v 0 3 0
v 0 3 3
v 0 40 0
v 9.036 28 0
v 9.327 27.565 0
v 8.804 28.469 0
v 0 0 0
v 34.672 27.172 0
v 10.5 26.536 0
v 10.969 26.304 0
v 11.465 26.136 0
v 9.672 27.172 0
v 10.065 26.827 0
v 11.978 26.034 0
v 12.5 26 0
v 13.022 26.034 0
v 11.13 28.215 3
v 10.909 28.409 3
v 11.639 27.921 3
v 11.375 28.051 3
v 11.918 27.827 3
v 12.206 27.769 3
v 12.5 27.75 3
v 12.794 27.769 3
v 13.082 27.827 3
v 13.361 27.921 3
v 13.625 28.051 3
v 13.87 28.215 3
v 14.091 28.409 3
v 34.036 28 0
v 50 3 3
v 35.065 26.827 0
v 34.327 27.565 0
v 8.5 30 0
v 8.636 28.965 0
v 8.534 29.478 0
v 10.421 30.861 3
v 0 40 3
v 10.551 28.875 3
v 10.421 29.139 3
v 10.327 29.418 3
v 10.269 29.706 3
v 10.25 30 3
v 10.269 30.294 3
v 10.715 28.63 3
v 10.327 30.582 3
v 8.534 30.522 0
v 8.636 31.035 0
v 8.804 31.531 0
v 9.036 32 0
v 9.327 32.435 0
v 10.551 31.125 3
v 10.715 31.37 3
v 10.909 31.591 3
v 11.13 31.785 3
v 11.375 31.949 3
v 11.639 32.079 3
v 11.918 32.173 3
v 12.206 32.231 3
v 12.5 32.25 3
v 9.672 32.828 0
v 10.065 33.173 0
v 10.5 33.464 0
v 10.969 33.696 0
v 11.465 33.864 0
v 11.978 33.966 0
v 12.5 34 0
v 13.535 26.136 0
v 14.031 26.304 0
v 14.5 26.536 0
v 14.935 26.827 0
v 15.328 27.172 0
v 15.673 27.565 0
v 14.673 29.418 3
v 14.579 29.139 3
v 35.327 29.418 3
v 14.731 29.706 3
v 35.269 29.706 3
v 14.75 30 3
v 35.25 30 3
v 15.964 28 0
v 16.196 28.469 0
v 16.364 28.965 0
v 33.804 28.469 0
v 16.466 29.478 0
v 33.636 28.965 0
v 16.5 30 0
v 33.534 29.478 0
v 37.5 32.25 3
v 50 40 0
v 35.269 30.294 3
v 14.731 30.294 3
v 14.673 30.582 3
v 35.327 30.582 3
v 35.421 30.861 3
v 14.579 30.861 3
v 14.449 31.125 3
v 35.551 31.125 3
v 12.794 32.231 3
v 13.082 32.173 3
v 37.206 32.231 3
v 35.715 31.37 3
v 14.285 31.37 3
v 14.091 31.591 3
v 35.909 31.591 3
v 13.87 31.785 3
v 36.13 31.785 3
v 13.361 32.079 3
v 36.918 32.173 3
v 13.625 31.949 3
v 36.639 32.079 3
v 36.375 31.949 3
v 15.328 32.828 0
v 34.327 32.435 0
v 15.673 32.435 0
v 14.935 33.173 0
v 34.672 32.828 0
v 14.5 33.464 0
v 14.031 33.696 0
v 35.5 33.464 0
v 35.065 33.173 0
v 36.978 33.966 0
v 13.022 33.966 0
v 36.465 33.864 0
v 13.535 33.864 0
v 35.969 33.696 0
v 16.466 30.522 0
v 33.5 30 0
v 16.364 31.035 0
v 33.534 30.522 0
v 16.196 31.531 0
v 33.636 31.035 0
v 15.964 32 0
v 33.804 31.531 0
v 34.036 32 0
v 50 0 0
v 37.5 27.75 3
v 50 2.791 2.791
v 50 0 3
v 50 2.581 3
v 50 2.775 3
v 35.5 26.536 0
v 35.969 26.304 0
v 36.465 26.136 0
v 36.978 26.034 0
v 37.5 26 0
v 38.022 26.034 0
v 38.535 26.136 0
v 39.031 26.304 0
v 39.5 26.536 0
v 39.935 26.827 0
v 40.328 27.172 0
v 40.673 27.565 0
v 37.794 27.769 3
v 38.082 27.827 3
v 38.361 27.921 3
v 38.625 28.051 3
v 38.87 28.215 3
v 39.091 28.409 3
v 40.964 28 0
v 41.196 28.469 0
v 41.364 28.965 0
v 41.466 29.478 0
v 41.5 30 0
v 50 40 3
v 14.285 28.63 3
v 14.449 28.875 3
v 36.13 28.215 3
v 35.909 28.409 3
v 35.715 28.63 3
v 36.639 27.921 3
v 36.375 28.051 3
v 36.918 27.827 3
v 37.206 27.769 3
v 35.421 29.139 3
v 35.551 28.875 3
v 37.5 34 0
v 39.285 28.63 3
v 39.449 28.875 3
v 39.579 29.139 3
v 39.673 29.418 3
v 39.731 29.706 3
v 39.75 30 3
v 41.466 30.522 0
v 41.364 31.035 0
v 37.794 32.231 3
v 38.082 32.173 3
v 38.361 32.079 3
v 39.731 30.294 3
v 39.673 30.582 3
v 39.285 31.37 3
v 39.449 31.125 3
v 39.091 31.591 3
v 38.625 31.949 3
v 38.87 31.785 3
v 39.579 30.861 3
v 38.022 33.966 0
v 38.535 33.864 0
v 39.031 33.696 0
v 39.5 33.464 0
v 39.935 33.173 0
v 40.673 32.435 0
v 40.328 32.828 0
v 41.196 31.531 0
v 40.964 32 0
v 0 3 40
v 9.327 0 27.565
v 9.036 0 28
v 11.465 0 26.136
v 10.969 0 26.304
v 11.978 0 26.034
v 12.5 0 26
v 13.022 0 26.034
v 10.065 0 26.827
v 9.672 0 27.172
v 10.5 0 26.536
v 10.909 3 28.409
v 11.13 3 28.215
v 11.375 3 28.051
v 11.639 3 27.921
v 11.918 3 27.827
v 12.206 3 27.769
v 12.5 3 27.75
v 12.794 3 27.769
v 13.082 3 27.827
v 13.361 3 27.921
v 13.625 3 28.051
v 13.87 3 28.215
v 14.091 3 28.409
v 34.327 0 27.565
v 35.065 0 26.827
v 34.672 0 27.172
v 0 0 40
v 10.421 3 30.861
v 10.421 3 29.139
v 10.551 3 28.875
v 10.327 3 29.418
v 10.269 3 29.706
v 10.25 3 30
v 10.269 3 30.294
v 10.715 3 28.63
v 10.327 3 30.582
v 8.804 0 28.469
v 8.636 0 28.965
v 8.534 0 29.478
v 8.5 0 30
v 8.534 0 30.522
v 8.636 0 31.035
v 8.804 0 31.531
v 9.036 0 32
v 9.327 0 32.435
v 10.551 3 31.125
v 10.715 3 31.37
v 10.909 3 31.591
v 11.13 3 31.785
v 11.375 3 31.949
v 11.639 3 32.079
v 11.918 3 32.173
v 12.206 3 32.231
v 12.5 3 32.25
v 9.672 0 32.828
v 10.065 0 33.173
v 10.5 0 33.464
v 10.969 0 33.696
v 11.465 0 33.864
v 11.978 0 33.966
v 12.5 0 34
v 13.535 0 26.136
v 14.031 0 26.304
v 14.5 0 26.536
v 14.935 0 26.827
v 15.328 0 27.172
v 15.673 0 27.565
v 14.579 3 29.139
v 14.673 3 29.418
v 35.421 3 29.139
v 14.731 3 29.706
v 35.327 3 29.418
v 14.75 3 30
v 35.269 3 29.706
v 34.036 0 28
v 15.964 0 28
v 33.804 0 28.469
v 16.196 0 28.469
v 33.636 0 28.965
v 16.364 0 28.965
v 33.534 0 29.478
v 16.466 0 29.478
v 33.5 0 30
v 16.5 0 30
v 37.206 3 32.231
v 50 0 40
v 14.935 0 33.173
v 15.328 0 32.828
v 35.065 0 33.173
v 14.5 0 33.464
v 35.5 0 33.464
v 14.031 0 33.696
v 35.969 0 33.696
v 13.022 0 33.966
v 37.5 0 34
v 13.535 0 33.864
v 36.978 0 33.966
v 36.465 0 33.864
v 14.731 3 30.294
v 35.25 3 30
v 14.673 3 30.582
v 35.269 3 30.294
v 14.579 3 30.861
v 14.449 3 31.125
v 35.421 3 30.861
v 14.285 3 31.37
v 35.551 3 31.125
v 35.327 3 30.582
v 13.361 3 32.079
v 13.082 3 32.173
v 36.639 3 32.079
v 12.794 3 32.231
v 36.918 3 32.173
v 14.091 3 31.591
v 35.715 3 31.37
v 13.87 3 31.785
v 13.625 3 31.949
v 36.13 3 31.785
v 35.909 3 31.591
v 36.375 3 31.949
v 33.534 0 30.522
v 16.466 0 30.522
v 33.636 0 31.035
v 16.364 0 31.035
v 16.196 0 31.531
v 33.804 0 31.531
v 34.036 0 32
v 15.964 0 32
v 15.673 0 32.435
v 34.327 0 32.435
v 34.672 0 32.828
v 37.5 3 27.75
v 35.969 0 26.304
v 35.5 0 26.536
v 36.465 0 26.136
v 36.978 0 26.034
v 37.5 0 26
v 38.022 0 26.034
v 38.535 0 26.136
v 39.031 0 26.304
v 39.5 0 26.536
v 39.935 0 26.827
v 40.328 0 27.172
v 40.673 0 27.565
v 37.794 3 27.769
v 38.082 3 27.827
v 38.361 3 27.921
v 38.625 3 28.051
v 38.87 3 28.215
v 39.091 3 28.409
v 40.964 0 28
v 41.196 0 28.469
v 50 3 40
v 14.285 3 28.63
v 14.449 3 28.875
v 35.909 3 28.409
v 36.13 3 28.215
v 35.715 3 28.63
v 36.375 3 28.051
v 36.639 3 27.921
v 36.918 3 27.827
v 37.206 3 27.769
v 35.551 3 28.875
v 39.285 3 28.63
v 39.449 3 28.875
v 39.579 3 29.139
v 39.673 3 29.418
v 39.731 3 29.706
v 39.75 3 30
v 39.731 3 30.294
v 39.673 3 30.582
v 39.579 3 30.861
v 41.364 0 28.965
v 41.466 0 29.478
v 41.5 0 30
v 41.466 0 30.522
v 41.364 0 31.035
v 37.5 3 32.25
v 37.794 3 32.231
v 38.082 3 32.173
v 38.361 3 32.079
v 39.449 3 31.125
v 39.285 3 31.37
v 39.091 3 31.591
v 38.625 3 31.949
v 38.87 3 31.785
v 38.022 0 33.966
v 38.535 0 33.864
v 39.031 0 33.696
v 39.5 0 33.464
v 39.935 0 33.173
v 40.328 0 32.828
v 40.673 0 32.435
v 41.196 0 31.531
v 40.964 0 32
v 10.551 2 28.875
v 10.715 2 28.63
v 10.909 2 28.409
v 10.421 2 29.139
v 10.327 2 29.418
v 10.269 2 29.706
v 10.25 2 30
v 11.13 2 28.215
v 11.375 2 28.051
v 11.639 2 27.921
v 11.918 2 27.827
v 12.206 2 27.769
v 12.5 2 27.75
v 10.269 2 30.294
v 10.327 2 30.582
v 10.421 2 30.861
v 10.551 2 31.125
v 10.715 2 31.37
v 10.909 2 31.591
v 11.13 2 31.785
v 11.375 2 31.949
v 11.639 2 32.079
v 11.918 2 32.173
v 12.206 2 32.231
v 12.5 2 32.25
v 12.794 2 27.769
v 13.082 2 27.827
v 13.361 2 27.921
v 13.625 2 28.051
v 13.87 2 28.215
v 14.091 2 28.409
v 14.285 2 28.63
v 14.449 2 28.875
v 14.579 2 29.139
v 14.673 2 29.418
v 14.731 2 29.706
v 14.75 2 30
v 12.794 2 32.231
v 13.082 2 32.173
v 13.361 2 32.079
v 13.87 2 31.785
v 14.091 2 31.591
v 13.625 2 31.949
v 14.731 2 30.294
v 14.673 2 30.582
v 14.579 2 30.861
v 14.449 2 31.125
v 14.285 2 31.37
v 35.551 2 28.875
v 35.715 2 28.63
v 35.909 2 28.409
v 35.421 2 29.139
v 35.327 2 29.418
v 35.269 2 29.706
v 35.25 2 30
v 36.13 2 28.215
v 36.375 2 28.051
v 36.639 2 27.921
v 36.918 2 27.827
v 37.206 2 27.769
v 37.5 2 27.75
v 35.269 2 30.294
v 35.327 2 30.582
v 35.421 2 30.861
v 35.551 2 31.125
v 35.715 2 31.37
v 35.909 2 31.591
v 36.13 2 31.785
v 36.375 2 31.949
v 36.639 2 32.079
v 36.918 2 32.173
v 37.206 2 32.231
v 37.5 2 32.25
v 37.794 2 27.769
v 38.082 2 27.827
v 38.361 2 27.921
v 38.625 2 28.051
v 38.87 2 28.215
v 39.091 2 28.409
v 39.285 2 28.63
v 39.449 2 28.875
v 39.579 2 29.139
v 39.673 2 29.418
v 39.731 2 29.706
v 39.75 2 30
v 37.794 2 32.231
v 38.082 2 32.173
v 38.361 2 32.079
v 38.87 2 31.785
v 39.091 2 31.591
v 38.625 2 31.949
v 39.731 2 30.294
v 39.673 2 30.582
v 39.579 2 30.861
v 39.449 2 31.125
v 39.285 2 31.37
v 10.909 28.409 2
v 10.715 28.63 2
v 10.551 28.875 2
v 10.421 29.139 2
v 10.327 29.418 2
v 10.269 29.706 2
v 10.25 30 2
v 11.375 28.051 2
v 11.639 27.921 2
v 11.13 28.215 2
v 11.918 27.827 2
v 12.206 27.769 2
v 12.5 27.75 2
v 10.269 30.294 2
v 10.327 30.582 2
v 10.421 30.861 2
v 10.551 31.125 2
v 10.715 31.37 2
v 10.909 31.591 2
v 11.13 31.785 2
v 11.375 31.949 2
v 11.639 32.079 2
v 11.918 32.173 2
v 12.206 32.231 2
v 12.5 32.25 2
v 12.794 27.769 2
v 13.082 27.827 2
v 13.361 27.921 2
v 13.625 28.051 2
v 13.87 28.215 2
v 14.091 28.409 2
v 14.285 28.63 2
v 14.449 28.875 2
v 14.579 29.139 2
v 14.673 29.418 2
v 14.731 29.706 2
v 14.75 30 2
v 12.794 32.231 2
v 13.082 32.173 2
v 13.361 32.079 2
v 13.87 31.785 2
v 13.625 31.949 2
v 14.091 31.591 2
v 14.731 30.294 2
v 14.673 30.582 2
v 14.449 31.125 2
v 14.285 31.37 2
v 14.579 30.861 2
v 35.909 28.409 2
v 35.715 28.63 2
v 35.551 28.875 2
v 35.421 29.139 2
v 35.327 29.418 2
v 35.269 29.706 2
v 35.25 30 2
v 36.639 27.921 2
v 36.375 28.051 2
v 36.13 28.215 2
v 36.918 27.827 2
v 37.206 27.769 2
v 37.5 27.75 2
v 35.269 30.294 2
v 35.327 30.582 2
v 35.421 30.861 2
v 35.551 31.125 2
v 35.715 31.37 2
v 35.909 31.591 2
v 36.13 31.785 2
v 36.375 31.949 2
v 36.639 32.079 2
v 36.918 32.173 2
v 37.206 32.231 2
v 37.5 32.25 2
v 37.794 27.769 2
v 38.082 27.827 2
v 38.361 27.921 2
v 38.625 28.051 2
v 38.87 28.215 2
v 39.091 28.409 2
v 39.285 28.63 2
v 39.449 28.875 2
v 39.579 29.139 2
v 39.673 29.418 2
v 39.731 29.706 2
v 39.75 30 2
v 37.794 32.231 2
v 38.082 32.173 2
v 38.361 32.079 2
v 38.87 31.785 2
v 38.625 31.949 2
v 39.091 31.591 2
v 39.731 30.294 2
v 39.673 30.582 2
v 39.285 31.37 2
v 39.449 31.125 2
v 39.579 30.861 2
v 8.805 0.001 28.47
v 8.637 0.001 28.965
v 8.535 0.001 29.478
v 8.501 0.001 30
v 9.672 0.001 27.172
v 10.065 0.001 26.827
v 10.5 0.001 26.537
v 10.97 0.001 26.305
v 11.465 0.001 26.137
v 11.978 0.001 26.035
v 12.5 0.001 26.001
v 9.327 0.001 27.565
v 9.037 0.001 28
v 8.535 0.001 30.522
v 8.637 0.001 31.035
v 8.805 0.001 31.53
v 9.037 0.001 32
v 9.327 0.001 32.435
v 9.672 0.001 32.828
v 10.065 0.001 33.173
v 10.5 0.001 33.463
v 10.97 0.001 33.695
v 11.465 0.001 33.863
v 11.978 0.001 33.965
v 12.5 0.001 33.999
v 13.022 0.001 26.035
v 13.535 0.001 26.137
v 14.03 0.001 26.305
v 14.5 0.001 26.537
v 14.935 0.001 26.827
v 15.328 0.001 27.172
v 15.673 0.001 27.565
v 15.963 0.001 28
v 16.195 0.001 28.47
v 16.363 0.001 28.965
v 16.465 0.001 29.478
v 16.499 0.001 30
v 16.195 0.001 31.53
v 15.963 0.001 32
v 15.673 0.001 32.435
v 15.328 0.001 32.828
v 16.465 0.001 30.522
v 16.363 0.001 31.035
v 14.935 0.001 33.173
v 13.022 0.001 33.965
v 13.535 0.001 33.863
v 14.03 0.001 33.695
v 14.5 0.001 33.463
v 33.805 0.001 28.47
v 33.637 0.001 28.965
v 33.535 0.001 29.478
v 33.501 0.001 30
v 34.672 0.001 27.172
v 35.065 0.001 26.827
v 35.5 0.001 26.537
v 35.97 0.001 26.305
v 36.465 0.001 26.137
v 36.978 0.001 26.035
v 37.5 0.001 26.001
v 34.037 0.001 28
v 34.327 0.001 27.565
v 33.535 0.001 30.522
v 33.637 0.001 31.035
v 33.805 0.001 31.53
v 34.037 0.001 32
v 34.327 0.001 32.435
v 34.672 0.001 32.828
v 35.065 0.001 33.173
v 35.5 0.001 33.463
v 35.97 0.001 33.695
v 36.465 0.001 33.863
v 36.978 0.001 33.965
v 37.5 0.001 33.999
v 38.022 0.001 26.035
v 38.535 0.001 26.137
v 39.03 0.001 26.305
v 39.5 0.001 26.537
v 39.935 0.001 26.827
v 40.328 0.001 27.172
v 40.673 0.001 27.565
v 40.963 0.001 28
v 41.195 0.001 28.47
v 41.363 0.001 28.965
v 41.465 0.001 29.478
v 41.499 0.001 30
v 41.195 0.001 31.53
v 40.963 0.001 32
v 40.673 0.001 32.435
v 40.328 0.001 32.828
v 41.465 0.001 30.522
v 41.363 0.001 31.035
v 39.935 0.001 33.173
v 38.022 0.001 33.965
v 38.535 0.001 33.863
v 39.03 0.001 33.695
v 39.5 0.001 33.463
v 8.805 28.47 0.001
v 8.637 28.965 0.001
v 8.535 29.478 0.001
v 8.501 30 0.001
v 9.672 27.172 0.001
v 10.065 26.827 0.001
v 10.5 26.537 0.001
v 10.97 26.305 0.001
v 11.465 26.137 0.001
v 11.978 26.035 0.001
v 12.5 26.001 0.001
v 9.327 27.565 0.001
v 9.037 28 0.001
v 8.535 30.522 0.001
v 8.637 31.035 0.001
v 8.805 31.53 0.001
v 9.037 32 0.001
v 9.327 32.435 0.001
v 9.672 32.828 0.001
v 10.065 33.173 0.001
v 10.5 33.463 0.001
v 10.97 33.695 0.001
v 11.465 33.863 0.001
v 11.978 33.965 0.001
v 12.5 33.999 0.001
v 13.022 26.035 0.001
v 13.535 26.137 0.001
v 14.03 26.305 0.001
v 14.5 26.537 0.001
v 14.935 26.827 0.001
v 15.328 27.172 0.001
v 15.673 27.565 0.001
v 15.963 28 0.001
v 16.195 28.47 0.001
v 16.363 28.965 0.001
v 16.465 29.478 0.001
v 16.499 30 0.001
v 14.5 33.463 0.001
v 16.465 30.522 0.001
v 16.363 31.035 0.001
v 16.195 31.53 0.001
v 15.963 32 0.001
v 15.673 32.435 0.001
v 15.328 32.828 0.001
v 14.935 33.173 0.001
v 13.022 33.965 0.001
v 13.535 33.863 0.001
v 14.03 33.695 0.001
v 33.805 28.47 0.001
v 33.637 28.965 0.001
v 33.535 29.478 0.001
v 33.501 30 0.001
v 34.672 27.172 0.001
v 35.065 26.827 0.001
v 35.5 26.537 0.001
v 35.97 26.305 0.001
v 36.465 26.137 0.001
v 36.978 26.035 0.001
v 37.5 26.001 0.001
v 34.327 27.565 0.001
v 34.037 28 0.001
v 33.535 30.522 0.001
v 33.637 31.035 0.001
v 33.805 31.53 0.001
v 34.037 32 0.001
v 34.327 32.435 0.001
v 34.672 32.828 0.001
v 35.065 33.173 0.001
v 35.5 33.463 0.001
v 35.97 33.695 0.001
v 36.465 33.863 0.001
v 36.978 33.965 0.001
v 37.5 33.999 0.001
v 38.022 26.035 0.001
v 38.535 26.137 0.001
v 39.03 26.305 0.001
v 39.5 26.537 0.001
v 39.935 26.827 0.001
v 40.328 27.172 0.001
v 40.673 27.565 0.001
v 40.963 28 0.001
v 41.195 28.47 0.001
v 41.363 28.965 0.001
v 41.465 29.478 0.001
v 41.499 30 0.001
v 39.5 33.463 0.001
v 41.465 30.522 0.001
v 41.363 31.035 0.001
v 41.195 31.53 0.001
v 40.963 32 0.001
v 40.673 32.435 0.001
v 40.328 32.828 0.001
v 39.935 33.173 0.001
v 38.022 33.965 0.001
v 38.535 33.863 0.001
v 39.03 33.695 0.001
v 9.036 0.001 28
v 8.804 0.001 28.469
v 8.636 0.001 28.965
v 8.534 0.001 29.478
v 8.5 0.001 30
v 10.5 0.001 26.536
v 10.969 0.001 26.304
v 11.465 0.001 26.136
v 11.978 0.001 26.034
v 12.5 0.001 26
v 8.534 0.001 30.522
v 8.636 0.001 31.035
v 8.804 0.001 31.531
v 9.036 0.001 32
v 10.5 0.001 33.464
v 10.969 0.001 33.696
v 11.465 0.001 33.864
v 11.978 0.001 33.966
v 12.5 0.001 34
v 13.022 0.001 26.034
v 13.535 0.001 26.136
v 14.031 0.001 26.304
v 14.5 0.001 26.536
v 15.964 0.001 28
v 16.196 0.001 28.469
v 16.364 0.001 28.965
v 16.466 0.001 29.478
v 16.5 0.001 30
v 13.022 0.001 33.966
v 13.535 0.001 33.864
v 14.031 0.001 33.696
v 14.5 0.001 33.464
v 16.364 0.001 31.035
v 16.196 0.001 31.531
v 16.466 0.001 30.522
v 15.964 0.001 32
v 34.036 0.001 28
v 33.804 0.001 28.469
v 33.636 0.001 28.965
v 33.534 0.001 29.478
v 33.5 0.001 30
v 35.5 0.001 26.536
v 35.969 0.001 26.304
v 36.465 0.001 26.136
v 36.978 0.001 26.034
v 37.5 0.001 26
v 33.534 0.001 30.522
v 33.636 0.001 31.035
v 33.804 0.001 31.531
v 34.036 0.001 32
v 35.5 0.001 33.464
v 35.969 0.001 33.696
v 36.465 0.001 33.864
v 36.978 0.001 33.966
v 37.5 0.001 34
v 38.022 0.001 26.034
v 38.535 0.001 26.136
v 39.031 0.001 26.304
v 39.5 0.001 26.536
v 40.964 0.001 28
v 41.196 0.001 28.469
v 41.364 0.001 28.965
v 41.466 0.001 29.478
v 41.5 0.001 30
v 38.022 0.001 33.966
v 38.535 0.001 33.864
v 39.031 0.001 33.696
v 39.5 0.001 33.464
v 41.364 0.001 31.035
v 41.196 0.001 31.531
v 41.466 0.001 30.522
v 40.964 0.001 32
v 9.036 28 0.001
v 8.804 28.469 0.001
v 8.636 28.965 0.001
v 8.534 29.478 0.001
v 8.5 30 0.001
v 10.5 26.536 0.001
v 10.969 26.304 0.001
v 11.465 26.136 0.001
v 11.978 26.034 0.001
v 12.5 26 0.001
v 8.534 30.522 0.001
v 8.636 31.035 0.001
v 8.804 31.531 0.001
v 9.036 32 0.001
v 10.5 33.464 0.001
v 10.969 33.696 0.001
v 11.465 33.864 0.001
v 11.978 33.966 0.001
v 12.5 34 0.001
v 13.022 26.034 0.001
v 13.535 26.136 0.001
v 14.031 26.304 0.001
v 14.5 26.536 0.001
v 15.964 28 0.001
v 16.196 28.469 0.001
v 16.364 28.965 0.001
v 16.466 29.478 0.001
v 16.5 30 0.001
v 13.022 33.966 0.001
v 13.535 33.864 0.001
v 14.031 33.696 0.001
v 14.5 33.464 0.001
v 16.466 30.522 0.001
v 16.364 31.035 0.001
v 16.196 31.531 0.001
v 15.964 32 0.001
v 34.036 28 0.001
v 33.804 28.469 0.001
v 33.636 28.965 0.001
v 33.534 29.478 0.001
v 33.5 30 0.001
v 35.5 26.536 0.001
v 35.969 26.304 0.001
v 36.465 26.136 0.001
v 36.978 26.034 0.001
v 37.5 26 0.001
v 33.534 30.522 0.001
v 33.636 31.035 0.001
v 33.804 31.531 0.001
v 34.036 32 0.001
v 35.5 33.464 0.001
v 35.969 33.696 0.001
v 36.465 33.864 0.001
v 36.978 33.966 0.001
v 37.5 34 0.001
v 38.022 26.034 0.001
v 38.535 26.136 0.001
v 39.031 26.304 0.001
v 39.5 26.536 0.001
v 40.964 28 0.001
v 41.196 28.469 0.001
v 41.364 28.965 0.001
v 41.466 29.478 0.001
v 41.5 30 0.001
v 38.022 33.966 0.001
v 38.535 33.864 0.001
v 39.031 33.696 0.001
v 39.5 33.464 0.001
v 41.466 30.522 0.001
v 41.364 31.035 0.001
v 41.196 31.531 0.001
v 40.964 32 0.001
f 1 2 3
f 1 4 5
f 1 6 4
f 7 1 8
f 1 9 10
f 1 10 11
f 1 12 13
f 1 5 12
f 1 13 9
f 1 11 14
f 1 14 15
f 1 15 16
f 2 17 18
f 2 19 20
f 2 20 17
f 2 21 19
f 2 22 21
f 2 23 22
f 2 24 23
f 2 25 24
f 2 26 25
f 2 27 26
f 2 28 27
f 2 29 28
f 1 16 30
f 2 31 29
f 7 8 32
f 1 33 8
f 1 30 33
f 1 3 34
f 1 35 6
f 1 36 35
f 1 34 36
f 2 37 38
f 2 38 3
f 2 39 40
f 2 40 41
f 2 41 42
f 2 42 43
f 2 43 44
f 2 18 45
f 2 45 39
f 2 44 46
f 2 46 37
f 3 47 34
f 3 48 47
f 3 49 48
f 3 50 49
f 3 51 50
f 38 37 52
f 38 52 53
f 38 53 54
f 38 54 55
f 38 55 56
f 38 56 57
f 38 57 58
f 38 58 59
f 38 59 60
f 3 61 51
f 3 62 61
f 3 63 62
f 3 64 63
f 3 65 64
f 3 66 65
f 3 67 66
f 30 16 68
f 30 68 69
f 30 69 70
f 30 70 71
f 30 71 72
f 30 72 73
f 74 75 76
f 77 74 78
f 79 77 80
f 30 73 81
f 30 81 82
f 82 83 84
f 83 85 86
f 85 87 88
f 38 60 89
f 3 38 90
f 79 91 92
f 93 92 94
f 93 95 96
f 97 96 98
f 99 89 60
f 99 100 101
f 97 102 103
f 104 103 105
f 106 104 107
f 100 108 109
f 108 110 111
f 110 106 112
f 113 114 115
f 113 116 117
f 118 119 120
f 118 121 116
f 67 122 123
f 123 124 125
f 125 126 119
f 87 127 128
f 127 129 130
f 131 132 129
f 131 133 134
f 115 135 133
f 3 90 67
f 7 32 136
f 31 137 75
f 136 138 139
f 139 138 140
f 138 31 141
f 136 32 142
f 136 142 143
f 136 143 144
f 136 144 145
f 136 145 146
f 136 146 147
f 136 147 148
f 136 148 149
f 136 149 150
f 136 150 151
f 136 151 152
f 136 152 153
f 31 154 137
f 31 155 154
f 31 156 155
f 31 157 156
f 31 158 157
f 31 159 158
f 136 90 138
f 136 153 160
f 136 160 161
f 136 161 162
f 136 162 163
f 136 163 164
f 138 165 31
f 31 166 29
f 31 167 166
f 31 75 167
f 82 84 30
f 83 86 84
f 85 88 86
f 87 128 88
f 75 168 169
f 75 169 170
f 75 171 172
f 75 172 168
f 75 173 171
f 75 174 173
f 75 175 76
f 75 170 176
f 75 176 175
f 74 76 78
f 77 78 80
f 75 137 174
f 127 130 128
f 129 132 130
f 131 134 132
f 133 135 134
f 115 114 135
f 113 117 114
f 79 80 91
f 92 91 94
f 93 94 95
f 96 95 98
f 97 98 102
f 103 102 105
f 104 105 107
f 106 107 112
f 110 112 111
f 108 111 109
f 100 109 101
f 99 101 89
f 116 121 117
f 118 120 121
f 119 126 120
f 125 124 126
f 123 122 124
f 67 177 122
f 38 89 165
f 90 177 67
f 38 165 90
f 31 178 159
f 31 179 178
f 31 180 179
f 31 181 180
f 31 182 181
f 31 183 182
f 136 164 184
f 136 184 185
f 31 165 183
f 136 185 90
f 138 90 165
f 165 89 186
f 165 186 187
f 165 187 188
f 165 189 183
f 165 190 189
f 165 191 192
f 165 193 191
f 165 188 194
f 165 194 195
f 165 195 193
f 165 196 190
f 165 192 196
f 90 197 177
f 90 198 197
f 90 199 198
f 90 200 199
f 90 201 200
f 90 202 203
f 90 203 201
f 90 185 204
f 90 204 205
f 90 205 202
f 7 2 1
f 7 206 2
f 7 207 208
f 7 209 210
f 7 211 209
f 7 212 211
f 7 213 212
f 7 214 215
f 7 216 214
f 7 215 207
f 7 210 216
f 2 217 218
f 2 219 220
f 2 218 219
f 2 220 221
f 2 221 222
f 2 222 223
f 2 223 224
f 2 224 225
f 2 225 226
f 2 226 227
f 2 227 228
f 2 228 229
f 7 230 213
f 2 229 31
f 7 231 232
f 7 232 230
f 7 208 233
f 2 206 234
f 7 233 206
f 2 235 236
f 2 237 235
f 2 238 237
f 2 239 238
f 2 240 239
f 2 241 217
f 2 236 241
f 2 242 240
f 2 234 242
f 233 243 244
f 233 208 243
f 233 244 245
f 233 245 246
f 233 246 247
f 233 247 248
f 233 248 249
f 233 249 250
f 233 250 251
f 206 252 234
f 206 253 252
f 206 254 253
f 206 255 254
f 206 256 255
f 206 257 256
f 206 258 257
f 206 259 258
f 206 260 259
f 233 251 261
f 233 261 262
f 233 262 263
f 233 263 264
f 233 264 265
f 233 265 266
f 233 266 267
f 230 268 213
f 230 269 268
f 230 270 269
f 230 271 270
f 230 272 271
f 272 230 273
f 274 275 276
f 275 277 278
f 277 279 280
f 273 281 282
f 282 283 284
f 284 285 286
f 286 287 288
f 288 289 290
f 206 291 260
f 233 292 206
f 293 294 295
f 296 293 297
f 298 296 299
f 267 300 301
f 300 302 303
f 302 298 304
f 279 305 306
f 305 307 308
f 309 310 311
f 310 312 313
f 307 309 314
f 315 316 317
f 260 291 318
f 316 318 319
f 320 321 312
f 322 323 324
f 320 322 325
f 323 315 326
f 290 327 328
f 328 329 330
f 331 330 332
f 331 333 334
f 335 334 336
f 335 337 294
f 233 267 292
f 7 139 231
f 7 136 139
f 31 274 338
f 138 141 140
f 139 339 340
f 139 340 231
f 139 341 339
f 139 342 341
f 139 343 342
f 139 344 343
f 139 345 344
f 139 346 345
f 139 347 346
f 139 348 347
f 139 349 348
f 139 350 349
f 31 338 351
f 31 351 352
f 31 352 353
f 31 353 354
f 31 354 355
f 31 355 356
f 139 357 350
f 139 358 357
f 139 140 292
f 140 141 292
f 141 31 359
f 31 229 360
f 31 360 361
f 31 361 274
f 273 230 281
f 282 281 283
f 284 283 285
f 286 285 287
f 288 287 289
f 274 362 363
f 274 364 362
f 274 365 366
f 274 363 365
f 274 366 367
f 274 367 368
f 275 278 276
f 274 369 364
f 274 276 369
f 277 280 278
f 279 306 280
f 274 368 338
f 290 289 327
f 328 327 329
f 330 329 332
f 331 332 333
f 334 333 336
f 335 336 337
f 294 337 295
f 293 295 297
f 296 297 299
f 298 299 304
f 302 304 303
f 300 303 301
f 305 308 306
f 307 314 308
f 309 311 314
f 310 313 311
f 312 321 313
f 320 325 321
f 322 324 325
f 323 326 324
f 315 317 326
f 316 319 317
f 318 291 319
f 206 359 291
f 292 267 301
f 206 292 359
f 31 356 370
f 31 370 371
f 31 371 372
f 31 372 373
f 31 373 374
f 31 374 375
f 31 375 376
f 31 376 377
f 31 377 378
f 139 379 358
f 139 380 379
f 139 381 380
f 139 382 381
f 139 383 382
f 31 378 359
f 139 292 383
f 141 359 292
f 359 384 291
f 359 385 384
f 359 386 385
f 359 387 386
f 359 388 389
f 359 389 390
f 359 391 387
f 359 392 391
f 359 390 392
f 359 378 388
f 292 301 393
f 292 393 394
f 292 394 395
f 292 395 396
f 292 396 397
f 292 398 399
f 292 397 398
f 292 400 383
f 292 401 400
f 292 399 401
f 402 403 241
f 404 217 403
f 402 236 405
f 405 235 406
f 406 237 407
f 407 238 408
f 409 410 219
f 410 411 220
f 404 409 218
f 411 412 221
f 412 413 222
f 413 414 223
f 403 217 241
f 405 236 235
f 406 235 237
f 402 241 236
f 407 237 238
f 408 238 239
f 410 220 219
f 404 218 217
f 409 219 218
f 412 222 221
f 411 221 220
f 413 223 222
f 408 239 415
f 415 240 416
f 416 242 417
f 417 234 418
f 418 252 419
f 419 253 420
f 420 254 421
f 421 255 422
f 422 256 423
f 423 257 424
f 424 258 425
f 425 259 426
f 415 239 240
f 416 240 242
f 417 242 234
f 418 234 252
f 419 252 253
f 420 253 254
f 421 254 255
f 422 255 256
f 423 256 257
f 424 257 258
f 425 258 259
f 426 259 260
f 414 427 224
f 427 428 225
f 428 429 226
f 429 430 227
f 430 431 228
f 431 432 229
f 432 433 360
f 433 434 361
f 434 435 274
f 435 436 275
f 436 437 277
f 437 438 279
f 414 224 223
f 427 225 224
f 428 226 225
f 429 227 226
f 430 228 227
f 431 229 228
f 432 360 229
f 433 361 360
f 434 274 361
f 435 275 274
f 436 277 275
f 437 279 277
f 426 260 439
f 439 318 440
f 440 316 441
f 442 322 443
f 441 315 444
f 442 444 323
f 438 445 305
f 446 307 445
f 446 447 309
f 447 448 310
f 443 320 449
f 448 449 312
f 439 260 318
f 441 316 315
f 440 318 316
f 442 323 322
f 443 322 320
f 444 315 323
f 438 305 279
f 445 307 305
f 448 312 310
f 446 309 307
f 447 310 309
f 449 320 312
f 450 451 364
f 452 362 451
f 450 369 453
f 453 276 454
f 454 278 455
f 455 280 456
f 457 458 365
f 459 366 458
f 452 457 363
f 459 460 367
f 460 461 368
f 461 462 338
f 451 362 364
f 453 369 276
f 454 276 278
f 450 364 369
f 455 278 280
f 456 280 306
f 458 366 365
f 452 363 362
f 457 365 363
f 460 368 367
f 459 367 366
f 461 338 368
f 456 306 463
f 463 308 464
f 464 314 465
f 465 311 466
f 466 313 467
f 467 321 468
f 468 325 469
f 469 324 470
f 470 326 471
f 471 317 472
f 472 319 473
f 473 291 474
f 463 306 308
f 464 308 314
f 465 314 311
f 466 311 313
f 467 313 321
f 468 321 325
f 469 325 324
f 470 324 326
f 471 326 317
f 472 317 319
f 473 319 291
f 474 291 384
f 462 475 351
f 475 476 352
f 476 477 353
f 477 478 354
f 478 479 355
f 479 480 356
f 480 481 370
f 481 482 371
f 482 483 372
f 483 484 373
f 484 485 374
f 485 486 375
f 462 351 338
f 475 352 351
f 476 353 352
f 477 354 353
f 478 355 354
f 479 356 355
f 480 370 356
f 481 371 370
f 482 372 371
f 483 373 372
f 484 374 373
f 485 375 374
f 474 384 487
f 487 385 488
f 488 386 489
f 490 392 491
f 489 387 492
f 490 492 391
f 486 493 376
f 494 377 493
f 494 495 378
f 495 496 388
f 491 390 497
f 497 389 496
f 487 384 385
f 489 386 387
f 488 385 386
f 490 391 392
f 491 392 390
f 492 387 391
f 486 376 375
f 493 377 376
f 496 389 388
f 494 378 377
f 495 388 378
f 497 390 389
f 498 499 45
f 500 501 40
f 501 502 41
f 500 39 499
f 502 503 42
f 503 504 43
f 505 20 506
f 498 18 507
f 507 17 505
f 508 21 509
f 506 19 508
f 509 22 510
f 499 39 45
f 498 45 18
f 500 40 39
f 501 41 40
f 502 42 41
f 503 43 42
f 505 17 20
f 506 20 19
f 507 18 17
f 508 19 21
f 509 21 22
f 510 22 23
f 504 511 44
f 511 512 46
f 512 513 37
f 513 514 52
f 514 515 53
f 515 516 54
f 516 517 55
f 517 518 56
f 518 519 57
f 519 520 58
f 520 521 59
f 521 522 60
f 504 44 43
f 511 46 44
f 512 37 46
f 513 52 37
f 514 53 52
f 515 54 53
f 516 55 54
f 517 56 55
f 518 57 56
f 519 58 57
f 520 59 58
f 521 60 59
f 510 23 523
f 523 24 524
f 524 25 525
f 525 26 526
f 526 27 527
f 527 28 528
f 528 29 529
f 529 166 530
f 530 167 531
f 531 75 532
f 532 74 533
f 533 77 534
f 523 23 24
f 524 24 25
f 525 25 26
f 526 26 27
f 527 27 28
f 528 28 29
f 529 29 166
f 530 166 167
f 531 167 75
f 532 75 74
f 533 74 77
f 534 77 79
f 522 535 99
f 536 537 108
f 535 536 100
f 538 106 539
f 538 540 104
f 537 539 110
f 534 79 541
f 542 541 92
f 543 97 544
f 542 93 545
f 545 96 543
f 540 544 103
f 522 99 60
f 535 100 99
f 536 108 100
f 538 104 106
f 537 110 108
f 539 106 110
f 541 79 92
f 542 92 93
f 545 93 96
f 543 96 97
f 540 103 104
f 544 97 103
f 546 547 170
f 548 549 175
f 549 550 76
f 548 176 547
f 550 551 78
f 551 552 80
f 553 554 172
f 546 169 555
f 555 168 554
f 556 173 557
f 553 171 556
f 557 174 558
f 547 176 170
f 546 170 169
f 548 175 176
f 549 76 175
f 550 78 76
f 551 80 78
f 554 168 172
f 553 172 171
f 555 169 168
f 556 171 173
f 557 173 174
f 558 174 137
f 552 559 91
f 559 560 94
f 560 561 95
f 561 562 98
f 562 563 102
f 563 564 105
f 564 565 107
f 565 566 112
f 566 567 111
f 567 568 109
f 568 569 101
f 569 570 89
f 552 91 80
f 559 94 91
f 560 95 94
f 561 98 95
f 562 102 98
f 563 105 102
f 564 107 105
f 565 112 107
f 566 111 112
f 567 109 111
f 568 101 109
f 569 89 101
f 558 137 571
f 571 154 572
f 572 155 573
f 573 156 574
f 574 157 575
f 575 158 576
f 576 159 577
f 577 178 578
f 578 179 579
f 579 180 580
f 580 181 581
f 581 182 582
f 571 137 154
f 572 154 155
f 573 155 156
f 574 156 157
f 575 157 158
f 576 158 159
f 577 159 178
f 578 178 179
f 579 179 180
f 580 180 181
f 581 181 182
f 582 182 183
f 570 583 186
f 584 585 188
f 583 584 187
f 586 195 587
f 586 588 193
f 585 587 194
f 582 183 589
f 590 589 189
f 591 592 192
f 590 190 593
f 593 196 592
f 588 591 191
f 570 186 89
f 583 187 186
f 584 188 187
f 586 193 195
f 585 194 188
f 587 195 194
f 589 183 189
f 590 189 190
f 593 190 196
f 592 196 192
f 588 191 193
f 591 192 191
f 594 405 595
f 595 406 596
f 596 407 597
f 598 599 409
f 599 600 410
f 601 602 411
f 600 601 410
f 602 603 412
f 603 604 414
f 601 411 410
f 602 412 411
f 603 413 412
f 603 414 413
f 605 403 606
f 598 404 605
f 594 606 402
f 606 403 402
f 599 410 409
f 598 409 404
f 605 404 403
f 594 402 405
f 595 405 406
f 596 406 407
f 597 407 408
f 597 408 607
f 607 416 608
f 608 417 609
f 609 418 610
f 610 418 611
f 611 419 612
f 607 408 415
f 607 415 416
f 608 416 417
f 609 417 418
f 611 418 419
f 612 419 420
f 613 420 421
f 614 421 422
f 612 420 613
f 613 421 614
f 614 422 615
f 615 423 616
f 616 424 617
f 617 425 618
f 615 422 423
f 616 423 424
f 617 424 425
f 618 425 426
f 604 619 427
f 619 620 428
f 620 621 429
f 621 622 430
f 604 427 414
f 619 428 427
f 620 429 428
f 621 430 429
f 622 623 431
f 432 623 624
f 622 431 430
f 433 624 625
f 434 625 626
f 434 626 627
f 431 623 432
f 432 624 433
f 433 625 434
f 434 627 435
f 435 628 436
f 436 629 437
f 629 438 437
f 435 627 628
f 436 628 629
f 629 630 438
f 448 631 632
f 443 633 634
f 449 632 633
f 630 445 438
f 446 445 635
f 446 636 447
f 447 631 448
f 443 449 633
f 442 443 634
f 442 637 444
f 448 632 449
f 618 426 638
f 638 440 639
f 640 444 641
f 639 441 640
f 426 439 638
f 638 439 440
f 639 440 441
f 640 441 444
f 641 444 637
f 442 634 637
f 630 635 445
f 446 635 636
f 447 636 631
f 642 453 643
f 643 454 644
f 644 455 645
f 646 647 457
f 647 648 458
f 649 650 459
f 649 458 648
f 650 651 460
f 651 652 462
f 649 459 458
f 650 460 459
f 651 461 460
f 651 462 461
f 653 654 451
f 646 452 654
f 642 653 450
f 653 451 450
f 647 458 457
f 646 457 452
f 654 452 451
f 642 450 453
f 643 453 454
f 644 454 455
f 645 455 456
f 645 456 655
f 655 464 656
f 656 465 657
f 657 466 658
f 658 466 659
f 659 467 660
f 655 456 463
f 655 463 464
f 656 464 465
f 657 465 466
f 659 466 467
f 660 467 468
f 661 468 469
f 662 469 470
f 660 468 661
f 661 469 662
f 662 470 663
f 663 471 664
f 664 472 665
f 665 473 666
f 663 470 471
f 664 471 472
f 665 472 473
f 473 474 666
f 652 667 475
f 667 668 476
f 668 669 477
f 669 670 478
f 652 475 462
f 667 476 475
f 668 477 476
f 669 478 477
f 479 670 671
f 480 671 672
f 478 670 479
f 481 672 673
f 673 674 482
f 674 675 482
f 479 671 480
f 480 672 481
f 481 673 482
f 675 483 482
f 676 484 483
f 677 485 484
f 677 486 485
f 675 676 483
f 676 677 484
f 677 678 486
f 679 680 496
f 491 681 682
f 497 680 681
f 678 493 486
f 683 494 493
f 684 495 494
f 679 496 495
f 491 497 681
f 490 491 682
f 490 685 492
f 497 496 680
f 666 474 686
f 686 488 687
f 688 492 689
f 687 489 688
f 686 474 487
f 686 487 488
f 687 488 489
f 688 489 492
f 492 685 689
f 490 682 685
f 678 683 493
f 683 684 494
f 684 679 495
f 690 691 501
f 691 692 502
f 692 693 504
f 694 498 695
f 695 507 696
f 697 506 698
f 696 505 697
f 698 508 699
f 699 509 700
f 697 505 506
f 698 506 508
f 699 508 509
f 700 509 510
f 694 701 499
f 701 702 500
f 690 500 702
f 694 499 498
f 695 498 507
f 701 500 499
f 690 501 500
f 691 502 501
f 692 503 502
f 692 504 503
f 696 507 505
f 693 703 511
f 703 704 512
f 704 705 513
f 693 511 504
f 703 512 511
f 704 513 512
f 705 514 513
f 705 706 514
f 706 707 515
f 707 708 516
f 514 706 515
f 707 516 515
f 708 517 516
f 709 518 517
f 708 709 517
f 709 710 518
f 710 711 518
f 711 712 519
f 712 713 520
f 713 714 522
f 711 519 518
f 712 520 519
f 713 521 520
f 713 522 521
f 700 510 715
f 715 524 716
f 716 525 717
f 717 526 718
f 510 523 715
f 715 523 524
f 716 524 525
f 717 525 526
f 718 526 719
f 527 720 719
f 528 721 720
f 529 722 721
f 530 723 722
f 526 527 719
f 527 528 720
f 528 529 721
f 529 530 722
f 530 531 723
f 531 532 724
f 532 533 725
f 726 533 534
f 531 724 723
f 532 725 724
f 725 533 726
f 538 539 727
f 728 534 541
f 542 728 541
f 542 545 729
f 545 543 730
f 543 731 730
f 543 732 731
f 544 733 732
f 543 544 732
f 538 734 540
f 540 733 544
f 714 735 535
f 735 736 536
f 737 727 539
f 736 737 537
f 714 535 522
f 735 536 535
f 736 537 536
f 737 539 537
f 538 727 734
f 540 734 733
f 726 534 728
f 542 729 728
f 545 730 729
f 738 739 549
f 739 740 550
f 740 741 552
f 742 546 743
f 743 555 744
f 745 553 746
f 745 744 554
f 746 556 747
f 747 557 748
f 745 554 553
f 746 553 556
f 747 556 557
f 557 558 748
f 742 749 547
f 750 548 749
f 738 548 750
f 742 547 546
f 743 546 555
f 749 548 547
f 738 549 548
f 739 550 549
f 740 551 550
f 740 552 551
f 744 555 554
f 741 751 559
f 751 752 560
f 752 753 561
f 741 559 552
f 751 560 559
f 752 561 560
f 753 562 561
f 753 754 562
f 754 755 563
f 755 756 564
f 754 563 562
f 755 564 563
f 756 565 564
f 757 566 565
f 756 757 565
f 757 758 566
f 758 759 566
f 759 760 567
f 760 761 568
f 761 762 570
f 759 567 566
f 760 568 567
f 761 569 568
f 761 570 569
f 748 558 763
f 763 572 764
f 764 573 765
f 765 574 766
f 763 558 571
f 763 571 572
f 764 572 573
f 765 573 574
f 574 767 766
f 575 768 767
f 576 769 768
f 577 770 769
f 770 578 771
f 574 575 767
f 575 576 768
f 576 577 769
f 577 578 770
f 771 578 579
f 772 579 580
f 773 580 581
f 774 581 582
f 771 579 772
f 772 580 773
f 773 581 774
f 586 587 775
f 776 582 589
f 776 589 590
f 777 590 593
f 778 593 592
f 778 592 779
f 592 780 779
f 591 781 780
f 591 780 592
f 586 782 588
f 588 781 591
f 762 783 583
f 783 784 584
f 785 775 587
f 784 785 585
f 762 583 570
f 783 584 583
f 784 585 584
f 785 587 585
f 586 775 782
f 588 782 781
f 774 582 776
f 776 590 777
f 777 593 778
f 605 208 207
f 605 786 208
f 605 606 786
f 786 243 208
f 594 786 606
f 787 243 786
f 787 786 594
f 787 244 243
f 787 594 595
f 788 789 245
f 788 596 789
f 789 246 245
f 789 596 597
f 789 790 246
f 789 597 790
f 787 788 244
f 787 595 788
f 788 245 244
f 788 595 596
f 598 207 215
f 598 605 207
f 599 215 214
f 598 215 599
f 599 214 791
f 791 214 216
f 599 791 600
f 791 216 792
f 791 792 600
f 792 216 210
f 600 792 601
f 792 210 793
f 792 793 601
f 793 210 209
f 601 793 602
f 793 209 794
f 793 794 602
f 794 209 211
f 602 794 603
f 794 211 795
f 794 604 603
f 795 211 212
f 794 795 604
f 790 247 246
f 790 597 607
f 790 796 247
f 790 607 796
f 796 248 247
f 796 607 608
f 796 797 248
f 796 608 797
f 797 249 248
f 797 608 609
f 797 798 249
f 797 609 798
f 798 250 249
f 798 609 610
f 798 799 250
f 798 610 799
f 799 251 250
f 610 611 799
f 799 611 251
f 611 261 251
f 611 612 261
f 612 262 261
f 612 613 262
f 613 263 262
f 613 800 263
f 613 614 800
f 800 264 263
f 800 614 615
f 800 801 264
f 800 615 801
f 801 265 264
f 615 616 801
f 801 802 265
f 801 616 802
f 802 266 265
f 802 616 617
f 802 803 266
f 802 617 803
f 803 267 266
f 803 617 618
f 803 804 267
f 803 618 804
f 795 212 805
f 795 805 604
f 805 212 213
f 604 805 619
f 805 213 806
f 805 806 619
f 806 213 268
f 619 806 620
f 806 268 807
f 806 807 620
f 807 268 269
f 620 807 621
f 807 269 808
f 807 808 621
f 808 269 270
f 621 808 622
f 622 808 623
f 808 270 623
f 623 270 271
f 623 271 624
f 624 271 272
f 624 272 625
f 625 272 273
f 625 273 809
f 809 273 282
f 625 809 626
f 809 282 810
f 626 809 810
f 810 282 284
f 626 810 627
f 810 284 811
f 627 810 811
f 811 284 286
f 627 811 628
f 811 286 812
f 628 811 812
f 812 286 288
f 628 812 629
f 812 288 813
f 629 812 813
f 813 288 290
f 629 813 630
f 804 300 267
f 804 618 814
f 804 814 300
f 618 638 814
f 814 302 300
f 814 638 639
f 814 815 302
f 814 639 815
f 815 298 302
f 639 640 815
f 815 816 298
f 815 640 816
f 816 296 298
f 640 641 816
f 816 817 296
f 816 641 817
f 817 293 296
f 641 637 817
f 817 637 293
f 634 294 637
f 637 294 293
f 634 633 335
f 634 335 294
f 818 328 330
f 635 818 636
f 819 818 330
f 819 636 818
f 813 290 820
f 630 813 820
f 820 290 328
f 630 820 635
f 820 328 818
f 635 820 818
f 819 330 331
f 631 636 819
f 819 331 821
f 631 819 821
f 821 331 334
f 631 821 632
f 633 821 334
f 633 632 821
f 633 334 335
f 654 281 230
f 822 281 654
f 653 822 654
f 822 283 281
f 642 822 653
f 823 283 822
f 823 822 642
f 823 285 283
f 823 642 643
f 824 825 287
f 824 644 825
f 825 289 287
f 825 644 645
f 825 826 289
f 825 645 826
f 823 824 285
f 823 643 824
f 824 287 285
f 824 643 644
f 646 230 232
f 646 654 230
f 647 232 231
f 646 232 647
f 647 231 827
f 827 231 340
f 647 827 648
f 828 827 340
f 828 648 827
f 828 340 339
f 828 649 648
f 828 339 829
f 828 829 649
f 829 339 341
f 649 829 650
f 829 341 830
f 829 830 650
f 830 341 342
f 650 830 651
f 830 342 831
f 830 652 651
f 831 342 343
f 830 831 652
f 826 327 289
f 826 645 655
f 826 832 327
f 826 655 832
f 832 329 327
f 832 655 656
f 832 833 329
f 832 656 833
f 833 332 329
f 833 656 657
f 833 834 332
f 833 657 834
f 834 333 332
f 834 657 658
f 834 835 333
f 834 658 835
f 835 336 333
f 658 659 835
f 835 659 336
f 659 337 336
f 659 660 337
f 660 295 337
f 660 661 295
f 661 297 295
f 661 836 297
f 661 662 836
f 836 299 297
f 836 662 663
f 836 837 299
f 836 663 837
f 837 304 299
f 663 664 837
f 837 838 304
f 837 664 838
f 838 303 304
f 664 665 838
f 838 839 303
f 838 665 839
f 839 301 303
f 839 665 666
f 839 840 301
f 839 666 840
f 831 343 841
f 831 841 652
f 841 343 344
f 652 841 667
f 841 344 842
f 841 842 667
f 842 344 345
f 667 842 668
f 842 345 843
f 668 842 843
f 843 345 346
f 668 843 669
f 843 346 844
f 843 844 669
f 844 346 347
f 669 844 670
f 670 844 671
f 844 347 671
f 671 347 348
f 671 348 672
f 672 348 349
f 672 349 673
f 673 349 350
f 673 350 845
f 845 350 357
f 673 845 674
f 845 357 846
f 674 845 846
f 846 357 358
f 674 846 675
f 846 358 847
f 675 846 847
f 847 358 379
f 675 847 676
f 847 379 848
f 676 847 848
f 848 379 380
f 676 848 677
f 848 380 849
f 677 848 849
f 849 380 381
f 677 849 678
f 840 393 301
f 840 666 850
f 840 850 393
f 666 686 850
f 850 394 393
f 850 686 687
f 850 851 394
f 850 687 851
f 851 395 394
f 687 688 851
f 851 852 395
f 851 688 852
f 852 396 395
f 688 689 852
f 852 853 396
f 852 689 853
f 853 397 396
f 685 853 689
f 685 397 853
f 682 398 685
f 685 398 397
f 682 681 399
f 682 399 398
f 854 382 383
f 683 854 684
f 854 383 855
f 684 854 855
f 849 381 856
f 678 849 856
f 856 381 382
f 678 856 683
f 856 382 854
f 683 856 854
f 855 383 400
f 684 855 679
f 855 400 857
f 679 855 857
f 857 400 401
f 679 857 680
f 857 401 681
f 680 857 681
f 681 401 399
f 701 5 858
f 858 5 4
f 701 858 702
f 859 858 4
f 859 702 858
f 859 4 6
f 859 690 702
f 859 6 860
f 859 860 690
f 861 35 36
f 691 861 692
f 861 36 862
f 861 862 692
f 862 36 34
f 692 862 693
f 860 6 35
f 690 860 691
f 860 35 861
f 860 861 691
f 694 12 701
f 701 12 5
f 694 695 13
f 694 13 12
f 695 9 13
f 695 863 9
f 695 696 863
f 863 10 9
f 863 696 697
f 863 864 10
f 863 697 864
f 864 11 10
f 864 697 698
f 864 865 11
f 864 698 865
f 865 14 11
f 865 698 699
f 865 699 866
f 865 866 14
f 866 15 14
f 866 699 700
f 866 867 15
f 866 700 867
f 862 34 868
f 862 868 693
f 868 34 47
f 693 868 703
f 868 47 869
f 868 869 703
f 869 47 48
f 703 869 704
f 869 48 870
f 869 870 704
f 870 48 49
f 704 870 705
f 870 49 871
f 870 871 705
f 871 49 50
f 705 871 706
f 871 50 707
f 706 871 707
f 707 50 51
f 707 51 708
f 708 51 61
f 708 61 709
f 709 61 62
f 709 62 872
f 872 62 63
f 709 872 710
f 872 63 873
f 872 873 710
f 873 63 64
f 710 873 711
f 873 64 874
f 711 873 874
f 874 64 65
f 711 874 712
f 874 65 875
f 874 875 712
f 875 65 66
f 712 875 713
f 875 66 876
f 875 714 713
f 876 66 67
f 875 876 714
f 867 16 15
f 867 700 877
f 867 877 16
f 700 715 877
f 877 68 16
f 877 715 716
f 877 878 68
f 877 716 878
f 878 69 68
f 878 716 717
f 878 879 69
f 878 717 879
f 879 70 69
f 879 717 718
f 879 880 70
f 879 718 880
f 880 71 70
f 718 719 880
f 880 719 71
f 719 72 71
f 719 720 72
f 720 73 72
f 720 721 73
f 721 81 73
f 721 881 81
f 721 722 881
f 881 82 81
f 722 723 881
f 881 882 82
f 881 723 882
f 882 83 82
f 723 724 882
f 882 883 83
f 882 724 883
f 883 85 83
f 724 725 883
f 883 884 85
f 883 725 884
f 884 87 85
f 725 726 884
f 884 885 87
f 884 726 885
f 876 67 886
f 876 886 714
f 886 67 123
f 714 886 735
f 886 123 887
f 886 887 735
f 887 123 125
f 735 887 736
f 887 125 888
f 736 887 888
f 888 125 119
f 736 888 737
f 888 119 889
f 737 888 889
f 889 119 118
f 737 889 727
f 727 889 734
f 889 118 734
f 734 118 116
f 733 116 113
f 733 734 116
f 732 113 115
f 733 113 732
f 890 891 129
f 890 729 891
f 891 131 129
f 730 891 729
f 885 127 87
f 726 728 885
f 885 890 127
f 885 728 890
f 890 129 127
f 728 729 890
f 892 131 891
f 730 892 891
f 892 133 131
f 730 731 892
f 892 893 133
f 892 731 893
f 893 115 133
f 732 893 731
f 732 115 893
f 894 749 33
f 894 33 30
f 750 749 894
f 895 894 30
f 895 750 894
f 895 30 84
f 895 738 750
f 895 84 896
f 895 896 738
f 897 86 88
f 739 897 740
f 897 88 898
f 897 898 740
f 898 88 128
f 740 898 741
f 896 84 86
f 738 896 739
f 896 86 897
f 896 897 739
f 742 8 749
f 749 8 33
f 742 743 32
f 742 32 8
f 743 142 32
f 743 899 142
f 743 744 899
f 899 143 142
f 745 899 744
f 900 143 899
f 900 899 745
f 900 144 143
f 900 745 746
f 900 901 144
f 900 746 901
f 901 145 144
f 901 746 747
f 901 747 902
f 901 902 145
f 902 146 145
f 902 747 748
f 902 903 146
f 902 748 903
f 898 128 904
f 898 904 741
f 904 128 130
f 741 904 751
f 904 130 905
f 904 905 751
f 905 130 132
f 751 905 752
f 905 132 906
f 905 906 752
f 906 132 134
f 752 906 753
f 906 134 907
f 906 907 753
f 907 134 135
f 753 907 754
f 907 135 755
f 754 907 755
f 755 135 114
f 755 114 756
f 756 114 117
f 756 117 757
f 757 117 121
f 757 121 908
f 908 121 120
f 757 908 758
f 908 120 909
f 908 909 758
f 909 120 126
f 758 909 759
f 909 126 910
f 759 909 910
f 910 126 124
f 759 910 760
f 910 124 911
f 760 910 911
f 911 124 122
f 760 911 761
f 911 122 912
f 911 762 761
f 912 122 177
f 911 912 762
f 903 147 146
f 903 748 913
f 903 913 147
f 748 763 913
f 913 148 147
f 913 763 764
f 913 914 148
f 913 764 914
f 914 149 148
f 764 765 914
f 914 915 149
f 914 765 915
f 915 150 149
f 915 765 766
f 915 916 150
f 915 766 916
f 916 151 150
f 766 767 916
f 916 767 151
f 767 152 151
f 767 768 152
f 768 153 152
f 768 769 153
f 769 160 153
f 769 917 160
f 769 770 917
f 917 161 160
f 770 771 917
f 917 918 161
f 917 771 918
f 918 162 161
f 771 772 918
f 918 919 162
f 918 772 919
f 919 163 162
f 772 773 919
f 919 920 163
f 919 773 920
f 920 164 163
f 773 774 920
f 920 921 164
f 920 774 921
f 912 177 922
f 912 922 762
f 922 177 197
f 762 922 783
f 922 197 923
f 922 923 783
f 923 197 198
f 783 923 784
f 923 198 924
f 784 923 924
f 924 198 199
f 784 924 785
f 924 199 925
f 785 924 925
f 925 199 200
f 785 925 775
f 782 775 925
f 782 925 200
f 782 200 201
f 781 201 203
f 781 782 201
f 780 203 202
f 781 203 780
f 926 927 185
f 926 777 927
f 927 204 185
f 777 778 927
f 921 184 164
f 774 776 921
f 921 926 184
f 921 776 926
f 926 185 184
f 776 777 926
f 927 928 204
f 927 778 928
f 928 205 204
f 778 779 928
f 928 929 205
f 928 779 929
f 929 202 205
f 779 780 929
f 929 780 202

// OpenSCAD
// L-bracket with countersunk holes

// パラメータ
width      = 50;   // 幅 (X方向)
depth      = 40;   // 水平面の奥行き / 垂直面の高さ
thickness  = 3;    // 板厚

hole_d     = 4.5;  // 貫通穴径 M4
cs_d       = 8;    // 皿座面径
cs_depth   = 2;    // 皿座面深さ
edge_off   = 10;   // 面の縁からの距離

// 穴中心のX座標（面の中心線X=25に対して左右対称）
x1 = width/2 - 12.5;   // 12.5
x2 = width/2 + 12.5;   // 37.5

// 皿穴モジュール（+Z方向に貫通、上面=外側に円錐の皿座）
module countersunk_hole(plate_thickness) {
    // 貫通穴
    translate([0, 0, -1])
        cylinder(h = plate_thickness + 2, d = hole_d, $fn = 48);
    // 皿座（円錐テーパー、上面=外側に向け広がる）
    translate([0, 0, plate_thickness - cs_depth])
        cylinder(h = cs_depth, d1 = hole_d, d2 = cs_d, $fn = 48);
    // 念のため外側を少し抜く
    translate([0, 0, plate_thickness - 0.001])
        cylinder(h = 1, d = cs_d, $fn = 48);
}

module l_bracket() {
    difference() {
        union() {
            // 水平面 (+Y方向に伸びる)
            cube([width, depth, thickness]);
            // 垂直面 (+Z方向に伸びる)
            cube([width, thickness, depth]);
        }

        // --- 水平面の皿穴 (外側 = -Z 側) ---
        // Y位置: 縁(Y=depth)から10mm内側 -> Y = depth - edge_off
        for (x = [x1, x2]) {
            translate([x, depth - edge_off, thickness])
                rotate([180, 0, 0])
                    countersunk_hole(thickness);
        }

        // --- 垂直面の皿穴 (外側 = -Y 側) ---
        // Z位置: 縁(Z=depth)から10mm内側 -> Z = depth - edge_off
        for (x = [x1, x2]) {
            translate([x, thickness, depth - edge_off])
                rotate([90, 0, 0])
                    countersunk_hole(thickness);
        }
    }
}

l_bracket();
